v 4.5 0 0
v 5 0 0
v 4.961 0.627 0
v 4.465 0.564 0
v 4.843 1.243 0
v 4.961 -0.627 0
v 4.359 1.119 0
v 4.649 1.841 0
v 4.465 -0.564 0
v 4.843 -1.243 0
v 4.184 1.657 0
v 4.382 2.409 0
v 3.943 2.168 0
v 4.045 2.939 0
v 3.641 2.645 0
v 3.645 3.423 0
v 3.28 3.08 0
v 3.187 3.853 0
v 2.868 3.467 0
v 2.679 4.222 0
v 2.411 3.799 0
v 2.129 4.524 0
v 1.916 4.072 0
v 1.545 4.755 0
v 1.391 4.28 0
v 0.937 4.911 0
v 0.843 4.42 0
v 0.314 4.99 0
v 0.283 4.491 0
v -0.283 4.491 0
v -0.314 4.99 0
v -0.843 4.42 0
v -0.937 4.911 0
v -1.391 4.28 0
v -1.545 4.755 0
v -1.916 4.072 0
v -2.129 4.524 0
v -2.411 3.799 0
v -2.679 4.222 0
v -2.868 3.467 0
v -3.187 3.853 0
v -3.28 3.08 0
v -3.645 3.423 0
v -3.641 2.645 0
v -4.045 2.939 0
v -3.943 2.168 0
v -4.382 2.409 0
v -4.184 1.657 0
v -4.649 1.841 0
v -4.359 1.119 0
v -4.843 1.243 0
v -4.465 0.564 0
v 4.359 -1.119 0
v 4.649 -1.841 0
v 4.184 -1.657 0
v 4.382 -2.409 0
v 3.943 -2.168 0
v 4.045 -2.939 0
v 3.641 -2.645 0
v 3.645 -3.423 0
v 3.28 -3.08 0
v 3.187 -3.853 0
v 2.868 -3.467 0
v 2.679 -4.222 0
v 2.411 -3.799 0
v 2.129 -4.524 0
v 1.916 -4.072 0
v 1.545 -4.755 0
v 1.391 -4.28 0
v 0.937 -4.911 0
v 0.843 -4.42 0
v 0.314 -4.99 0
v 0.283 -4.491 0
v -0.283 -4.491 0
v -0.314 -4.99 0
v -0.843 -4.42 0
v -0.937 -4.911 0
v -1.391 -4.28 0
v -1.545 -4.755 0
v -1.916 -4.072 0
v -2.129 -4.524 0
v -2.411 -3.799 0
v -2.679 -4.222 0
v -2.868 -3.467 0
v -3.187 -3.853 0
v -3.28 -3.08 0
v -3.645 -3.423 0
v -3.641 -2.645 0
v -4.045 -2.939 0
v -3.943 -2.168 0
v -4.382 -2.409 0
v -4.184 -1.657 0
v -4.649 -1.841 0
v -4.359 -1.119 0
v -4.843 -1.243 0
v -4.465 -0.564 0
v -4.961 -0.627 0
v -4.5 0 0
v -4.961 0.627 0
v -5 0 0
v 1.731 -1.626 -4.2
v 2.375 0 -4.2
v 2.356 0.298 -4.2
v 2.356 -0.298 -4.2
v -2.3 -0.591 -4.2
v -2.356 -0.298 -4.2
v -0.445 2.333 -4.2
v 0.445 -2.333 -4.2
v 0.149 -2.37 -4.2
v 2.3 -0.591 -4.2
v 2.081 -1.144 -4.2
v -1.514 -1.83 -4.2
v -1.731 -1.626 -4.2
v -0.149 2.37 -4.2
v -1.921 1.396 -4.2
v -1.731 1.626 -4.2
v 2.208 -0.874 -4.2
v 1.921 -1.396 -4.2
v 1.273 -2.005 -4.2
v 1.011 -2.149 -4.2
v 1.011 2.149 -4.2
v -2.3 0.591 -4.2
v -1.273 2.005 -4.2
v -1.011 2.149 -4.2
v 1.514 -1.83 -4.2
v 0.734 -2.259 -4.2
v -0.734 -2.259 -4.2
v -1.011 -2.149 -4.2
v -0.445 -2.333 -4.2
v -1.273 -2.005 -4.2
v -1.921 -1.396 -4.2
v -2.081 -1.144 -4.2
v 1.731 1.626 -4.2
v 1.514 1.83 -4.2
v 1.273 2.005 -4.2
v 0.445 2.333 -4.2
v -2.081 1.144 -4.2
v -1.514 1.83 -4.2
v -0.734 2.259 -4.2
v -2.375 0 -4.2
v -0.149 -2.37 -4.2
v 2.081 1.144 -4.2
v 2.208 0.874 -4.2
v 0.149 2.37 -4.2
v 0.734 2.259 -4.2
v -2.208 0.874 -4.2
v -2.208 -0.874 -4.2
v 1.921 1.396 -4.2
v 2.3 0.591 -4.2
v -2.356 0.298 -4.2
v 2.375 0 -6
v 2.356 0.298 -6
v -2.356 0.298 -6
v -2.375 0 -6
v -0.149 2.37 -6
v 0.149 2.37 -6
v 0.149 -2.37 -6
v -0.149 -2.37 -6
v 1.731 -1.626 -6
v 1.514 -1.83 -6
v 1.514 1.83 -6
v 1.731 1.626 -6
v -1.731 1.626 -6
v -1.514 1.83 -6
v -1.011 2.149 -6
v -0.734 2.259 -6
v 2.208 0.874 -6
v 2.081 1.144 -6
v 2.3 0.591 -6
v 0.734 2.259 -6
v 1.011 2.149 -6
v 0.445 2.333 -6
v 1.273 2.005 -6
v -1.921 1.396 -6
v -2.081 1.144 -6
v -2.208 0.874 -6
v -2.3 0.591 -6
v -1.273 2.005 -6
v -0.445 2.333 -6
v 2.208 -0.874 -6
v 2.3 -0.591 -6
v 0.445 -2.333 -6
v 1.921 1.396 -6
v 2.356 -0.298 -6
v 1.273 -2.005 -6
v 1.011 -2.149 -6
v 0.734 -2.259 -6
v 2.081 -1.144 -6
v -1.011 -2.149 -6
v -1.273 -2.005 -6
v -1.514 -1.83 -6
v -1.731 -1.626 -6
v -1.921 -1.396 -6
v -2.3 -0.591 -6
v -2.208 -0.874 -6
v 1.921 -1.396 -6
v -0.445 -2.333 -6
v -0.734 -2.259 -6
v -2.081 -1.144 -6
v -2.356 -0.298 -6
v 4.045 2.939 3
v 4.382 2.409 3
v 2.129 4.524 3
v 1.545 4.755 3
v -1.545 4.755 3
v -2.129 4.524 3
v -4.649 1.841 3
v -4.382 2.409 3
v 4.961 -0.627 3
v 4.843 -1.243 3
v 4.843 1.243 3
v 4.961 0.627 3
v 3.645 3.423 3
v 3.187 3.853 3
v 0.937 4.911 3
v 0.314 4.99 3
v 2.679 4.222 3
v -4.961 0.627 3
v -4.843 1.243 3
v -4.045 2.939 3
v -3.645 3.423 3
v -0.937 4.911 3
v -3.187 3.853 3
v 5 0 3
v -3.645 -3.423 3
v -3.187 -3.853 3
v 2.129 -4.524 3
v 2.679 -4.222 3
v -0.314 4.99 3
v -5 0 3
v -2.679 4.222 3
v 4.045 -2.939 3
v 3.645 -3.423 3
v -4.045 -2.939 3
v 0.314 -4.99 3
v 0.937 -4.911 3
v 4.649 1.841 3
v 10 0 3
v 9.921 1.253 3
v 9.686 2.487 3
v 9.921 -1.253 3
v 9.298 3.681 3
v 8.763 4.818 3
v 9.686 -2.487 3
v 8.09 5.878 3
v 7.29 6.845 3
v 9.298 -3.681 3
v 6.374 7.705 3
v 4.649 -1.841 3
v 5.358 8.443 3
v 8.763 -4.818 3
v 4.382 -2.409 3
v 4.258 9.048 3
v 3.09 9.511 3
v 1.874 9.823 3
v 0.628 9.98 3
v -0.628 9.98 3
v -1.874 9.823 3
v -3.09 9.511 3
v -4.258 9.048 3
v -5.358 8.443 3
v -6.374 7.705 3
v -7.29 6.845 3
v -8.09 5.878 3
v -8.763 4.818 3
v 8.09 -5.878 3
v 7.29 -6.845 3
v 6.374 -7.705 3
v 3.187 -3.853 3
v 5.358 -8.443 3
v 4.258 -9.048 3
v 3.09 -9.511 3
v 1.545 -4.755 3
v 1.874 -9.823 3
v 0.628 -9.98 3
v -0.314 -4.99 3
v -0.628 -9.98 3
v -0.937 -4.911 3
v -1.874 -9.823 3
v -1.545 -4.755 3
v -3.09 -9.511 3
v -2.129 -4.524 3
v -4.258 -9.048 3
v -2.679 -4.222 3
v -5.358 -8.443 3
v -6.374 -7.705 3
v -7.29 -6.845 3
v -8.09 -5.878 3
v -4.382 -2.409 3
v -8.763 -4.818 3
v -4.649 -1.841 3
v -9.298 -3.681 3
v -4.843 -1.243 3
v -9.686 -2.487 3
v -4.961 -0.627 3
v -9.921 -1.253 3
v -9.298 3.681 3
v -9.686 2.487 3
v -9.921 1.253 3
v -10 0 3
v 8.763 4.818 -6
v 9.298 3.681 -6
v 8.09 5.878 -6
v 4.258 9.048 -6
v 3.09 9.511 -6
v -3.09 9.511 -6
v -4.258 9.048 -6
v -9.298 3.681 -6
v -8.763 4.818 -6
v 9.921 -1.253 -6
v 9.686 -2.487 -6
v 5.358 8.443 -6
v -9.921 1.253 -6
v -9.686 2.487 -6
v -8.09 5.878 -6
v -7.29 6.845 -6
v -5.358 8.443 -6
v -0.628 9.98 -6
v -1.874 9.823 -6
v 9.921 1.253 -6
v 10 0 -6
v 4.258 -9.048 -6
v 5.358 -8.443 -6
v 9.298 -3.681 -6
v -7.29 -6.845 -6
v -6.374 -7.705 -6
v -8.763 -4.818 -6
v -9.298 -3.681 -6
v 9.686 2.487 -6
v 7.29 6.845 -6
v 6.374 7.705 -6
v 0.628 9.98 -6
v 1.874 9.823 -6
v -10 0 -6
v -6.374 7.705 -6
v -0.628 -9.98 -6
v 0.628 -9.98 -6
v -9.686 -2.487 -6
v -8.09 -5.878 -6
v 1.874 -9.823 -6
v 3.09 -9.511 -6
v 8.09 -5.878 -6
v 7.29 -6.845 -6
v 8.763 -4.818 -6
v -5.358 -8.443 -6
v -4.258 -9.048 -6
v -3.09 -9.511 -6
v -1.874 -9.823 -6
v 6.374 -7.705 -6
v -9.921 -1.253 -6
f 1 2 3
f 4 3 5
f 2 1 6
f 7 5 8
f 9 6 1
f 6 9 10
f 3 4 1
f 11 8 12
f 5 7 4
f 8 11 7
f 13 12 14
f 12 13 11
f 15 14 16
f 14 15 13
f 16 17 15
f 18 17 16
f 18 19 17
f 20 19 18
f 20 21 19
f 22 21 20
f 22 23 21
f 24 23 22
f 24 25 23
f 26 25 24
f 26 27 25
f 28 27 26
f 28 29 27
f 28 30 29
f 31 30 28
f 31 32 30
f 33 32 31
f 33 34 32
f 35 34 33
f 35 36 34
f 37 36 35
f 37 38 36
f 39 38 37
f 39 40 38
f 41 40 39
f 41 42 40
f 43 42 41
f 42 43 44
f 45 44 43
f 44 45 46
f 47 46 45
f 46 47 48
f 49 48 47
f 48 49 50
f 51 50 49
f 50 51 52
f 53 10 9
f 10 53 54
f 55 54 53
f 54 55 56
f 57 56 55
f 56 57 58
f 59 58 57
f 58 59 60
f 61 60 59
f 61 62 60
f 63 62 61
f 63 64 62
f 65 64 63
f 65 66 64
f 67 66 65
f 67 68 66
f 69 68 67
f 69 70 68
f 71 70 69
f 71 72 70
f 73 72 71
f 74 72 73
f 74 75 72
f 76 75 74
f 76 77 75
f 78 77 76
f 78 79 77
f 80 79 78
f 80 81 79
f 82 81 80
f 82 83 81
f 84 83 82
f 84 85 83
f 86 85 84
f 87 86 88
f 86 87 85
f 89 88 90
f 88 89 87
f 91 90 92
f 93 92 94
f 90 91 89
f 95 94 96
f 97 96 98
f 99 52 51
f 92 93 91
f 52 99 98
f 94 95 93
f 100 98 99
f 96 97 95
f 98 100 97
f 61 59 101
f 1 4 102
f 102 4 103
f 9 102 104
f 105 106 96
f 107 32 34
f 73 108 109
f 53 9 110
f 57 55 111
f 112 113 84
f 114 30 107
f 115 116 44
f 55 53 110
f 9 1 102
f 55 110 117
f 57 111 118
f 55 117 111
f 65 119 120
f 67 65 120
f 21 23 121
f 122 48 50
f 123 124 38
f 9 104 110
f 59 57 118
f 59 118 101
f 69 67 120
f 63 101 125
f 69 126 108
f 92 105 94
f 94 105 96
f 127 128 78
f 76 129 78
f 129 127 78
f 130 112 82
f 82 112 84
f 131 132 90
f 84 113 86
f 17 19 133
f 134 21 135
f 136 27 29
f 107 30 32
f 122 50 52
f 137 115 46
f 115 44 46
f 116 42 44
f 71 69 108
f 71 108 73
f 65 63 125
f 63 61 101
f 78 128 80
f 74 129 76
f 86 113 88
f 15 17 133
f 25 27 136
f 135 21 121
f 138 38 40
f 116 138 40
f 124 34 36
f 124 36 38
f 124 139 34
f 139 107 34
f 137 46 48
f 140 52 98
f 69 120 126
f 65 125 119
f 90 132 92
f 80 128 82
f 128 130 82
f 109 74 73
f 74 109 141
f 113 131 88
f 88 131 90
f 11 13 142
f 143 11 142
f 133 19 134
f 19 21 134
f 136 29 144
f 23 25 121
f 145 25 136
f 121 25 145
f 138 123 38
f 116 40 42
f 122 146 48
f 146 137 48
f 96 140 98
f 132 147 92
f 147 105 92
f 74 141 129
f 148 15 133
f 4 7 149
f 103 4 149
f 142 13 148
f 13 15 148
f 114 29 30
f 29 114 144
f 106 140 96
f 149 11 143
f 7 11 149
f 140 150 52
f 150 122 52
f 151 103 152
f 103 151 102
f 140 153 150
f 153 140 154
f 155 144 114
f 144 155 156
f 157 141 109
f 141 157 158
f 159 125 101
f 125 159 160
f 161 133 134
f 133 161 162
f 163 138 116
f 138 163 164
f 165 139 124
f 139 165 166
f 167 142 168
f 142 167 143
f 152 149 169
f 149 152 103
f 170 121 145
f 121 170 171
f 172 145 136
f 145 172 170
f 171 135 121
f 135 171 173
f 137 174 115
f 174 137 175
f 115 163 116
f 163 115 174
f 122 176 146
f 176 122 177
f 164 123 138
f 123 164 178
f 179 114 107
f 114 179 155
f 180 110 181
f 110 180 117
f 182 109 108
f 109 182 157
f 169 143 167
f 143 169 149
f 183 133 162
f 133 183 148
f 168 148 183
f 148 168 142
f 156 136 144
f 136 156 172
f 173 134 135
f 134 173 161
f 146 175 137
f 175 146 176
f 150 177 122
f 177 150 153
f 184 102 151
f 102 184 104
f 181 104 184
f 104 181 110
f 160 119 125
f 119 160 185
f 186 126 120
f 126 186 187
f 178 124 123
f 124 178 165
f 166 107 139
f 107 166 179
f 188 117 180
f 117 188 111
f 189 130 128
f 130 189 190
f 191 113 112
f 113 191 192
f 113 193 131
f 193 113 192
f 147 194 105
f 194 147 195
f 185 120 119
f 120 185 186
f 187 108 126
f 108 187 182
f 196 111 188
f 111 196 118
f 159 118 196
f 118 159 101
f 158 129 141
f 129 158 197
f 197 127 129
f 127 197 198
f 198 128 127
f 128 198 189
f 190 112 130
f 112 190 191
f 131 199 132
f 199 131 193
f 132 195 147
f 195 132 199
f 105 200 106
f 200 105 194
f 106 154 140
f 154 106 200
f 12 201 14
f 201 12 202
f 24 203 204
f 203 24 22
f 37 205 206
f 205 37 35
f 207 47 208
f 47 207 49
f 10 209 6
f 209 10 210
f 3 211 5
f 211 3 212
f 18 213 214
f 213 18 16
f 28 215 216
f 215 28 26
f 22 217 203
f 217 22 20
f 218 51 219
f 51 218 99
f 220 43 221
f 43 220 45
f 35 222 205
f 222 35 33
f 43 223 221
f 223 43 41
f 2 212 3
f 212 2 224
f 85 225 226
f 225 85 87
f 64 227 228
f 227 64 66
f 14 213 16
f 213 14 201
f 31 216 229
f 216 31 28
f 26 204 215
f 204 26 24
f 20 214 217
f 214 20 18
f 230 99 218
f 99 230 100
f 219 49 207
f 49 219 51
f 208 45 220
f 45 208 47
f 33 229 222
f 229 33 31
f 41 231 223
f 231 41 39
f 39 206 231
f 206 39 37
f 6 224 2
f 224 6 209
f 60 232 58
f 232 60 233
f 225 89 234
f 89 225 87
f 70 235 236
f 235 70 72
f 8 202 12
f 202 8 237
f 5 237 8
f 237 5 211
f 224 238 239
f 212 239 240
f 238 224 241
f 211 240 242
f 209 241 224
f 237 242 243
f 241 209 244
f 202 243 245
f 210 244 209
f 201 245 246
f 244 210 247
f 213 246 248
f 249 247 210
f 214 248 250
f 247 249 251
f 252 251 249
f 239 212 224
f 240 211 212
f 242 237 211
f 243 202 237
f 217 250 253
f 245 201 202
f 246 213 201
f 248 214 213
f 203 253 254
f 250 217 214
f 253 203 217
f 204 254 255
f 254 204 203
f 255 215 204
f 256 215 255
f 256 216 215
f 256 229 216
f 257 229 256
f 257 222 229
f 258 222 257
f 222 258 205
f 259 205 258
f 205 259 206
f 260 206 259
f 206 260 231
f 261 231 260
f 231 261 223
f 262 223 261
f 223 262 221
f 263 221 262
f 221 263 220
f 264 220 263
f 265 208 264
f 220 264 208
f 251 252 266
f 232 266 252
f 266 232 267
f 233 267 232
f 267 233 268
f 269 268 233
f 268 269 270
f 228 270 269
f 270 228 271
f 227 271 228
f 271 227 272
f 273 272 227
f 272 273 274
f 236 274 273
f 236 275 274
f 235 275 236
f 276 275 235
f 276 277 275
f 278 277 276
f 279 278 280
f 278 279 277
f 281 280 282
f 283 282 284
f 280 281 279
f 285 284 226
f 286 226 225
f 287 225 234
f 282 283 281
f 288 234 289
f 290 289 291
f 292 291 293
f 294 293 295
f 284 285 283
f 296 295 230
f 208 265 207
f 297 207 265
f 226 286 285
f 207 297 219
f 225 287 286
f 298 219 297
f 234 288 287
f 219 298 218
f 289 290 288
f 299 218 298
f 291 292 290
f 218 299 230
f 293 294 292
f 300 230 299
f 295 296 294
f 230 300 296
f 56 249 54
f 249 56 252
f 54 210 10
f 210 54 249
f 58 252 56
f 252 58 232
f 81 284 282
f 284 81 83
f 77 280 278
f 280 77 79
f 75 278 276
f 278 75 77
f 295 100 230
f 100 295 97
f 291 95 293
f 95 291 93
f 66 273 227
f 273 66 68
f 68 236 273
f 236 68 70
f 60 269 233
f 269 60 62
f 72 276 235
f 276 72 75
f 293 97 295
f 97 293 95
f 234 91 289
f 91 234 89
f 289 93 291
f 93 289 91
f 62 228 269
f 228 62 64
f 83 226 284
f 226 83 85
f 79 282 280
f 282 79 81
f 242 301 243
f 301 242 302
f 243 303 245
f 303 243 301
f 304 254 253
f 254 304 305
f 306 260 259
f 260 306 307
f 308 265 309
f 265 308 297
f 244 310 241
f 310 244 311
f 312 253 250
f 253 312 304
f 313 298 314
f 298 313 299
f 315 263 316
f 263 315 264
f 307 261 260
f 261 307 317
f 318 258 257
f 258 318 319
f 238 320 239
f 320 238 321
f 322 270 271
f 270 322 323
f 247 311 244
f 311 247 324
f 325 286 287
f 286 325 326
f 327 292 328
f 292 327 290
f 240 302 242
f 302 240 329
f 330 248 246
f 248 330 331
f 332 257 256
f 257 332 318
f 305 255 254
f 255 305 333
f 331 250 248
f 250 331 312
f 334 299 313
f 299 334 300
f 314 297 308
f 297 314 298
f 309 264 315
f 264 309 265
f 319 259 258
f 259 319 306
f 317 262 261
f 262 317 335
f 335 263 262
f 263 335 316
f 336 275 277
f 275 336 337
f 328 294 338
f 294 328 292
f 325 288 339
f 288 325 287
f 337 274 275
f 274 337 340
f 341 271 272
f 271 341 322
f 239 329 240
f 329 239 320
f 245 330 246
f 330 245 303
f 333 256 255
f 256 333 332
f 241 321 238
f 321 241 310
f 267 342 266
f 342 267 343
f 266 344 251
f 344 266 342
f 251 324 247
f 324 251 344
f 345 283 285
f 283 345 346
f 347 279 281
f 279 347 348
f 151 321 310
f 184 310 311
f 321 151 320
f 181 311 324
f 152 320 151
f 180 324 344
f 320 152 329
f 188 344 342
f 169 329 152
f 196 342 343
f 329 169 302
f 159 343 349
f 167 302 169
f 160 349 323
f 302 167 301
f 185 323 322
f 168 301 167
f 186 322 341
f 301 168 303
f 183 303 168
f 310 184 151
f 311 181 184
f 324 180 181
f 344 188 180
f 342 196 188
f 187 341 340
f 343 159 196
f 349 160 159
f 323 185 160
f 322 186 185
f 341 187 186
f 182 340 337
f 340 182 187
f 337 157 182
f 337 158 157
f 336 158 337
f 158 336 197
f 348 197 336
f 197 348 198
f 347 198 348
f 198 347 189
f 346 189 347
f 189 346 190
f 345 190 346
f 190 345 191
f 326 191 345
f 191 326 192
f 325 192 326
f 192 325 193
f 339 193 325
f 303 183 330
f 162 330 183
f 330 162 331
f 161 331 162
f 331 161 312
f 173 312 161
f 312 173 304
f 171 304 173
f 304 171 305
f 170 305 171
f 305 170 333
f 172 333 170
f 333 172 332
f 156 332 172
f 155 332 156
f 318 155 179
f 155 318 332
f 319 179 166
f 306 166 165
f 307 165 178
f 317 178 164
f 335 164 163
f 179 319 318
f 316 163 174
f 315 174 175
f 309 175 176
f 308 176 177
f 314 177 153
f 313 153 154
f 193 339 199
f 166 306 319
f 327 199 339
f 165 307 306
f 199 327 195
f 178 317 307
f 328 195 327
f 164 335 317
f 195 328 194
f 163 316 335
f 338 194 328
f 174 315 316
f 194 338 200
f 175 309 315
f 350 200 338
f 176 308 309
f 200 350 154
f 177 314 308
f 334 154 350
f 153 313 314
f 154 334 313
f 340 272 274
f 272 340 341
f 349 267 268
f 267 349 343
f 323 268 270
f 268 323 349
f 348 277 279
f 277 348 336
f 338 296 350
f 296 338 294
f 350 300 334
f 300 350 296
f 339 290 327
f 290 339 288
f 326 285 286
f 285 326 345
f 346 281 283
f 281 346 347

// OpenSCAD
$fn = 50;


difference() {
	union() {
		translate(v = [0, 0, -6.0000000000]) {
			cylinder(h = 9, r = 10.0000000000);
		}
	}
	union() {
		translate(v = [0, 0, 0]) {
			rotate(a = [0, 0, 0]) {
				difference() {
					union() {
						translate(v = [0, 0, -9.0000000000]) {
							cylinder(h = 9, r = 2.2500000000);
						}
						translate(v = [0, 0, -4.2000000000]) {
							cylinder(h = 4.2000000000, r1 = 2.3750000000, r2 = 4.5000000000);
						}
						translate(v = [0, 0, -9.0000000000]) {
							cylinder(h = 9, r = 2.3750000000);
						}
						translate(v = [0, 0, -9.0000000000]) {
							cylinder(h = 9, r = 2.2500000000);
						}
					}
					union();
				}
			}
		}
		#cylinder(h = 3, r = 5.0000000000);
	}
}
